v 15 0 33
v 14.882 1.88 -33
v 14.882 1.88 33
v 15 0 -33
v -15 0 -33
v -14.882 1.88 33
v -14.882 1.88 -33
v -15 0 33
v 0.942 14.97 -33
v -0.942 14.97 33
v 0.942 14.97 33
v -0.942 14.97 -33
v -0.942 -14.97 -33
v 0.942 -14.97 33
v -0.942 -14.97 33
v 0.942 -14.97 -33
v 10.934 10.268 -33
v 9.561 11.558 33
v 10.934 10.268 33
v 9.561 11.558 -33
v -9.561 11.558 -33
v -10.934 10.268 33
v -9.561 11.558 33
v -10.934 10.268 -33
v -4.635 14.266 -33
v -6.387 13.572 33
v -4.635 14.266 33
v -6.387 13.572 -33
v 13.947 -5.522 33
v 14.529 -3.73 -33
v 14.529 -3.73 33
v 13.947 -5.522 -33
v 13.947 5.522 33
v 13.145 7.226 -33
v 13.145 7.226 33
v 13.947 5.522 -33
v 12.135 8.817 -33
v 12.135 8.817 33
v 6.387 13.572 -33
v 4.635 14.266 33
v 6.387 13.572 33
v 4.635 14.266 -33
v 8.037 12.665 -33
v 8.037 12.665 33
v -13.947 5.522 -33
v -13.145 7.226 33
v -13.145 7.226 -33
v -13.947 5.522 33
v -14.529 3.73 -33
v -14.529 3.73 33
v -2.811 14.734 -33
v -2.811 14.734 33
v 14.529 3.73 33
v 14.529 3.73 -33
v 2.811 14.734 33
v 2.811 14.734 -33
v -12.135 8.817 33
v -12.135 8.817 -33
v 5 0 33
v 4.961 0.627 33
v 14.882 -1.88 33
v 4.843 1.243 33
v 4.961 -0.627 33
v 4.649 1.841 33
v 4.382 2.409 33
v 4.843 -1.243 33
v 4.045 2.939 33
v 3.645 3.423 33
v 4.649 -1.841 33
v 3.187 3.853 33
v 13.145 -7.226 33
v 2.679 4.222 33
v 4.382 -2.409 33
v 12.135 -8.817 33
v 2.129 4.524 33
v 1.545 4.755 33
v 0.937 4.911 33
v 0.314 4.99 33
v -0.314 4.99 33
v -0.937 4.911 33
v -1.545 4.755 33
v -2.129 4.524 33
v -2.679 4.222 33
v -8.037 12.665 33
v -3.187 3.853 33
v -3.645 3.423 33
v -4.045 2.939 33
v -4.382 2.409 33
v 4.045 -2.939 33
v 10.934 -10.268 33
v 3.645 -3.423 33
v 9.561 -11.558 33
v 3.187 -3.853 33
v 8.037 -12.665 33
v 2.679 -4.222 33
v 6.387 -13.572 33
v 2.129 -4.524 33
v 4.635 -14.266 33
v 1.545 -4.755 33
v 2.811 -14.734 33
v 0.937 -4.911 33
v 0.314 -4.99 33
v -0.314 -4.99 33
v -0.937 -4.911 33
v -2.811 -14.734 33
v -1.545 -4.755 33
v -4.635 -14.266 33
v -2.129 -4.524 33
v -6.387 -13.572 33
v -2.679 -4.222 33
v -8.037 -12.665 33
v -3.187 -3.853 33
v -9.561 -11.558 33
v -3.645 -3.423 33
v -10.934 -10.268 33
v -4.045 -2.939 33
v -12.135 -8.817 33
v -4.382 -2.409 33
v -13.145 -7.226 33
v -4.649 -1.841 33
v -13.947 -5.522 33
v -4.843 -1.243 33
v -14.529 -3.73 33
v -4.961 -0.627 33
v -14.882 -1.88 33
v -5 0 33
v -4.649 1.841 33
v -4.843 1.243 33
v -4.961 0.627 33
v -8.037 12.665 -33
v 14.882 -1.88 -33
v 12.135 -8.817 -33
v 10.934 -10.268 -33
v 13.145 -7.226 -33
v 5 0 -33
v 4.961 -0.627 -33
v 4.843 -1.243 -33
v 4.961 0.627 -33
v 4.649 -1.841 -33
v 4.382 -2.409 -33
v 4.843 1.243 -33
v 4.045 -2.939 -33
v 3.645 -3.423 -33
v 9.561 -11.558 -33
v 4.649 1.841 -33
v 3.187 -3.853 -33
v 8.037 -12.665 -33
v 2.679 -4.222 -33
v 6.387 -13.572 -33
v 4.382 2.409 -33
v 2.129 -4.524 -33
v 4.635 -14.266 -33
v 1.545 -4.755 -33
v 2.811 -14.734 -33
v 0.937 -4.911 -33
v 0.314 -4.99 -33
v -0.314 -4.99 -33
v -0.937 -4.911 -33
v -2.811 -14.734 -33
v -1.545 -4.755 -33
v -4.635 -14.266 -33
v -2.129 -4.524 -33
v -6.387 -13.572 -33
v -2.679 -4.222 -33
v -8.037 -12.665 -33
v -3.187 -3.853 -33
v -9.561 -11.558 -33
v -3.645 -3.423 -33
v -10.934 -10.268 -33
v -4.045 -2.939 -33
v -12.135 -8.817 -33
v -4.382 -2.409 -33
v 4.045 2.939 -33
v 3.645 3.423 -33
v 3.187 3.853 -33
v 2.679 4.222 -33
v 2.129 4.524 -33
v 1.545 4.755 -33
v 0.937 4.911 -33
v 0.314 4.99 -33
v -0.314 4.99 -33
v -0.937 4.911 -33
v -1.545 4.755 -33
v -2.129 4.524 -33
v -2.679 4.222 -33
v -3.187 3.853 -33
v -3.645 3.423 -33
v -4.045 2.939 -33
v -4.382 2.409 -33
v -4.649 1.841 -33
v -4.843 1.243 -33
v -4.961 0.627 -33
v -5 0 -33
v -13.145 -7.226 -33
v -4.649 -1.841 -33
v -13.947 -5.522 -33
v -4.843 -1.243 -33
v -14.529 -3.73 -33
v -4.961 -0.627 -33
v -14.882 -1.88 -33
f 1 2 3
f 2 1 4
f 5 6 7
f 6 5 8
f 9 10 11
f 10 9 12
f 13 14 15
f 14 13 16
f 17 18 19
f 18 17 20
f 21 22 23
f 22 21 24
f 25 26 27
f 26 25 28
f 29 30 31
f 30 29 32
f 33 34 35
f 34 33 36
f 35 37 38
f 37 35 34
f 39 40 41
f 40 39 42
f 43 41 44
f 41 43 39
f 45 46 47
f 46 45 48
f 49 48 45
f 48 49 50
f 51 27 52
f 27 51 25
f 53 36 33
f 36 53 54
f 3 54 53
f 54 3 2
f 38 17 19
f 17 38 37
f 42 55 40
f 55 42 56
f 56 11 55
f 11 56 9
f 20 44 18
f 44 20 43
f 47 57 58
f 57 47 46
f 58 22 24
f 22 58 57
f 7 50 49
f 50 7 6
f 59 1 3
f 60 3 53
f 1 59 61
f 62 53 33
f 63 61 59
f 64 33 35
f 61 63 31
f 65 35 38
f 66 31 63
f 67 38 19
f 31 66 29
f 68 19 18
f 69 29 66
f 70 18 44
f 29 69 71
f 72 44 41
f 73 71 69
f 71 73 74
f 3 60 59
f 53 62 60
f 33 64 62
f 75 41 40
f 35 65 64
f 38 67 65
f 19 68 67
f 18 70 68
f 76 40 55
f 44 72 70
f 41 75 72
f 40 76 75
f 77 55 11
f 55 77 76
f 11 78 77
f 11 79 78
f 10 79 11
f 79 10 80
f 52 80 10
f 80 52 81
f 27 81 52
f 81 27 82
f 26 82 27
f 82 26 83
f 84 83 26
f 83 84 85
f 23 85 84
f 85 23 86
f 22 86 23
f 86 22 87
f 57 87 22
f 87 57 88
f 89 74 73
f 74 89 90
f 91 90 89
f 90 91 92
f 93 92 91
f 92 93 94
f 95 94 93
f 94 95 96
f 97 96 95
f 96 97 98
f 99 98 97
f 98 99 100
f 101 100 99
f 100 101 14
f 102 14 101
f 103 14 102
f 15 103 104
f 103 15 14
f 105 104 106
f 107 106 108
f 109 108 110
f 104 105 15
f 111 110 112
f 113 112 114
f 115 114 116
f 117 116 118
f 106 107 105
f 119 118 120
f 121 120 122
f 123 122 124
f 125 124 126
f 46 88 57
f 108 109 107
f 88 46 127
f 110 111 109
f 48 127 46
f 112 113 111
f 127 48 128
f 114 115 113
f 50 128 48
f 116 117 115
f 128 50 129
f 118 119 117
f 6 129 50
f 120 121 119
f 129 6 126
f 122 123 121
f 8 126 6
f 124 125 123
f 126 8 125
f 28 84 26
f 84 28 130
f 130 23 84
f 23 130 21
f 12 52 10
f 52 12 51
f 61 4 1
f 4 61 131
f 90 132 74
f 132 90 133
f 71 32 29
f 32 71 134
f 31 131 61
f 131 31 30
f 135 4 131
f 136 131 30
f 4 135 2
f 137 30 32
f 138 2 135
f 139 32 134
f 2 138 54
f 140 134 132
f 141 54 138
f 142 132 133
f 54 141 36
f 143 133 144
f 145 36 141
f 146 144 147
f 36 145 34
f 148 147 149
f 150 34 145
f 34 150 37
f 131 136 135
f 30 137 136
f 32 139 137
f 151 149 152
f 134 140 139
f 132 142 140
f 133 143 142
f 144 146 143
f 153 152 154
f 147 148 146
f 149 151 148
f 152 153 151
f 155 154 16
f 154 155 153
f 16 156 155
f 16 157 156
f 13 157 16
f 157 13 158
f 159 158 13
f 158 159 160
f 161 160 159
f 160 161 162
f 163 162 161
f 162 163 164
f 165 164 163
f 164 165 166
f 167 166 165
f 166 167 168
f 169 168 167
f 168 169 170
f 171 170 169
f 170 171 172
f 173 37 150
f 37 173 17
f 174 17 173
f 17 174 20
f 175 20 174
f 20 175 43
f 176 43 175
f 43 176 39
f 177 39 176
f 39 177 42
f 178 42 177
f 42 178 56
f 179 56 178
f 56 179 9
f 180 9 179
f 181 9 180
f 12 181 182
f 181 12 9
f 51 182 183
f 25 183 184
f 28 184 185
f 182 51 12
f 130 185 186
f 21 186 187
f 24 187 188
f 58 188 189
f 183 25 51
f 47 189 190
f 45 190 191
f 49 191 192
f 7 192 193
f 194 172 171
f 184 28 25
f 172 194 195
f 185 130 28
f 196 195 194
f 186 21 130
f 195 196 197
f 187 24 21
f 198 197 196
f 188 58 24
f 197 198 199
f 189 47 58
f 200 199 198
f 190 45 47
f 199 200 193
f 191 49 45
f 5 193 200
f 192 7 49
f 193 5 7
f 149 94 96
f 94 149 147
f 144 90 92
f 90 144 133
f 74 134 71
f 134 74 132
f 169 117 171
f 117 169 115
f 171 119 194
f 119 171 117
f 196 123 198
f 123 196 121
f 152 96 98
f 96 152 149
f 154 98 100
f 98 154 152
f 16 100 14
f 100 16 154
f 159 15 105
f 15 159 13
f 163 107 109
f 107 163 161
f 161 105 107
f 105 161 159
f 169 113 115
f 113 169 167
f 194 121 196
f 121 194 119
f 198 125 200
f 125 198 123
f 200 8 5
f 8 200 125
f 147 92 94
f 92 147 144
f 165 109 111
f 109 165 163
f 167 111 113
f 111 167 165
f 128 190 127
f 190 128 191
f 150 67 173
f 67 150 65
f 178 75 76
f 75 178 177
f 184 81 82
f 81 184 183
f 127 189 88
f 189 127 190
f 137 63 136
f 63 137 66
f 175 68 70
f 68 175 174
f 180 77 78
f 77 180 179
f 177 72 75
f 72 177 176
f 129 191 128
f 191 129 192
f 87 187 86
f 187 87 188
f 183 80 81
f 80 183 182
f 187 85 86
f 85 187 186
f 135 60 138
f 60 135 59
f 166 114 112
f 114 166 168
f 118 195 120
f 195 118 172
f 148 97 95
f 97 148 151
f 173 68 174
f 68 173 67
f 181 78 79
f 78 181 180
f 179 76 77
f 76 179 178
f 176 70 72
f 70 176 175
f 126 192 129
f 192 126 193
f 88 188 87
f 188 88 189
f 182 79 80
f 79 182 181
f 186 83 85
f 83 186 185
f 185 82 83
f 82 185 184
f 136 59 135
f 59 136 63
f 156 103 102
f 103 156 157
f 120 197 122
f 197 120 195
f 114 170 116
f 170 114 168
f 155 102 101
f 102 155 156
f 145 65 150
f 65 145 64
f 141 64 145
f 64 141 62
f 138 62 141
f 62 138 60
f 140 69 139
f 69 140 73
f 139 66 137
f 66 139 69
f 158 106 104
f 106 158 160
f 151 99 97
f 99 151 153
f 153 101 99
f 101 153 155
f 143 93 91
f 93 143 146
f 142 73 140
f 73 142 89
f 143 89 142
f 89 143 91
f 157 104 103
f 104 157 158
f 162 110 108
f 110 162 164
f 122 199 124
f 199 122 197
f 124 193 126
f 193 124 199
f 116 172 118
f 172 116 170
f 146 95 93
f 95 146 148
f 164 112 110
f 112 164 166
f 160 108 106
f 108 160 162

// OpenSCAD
$fn = 50;


difference() {
	union() {
		translate(v = [0, 0, -33.0000000000]) {
			cylinder(h = 66, r = 15.0000000000);
		}
	}
	union() {
		translate(v = [0, 0, -100.0000000000]) {
			cylinder(h = 200, r = 5.0000000000);
		}
	}
}
